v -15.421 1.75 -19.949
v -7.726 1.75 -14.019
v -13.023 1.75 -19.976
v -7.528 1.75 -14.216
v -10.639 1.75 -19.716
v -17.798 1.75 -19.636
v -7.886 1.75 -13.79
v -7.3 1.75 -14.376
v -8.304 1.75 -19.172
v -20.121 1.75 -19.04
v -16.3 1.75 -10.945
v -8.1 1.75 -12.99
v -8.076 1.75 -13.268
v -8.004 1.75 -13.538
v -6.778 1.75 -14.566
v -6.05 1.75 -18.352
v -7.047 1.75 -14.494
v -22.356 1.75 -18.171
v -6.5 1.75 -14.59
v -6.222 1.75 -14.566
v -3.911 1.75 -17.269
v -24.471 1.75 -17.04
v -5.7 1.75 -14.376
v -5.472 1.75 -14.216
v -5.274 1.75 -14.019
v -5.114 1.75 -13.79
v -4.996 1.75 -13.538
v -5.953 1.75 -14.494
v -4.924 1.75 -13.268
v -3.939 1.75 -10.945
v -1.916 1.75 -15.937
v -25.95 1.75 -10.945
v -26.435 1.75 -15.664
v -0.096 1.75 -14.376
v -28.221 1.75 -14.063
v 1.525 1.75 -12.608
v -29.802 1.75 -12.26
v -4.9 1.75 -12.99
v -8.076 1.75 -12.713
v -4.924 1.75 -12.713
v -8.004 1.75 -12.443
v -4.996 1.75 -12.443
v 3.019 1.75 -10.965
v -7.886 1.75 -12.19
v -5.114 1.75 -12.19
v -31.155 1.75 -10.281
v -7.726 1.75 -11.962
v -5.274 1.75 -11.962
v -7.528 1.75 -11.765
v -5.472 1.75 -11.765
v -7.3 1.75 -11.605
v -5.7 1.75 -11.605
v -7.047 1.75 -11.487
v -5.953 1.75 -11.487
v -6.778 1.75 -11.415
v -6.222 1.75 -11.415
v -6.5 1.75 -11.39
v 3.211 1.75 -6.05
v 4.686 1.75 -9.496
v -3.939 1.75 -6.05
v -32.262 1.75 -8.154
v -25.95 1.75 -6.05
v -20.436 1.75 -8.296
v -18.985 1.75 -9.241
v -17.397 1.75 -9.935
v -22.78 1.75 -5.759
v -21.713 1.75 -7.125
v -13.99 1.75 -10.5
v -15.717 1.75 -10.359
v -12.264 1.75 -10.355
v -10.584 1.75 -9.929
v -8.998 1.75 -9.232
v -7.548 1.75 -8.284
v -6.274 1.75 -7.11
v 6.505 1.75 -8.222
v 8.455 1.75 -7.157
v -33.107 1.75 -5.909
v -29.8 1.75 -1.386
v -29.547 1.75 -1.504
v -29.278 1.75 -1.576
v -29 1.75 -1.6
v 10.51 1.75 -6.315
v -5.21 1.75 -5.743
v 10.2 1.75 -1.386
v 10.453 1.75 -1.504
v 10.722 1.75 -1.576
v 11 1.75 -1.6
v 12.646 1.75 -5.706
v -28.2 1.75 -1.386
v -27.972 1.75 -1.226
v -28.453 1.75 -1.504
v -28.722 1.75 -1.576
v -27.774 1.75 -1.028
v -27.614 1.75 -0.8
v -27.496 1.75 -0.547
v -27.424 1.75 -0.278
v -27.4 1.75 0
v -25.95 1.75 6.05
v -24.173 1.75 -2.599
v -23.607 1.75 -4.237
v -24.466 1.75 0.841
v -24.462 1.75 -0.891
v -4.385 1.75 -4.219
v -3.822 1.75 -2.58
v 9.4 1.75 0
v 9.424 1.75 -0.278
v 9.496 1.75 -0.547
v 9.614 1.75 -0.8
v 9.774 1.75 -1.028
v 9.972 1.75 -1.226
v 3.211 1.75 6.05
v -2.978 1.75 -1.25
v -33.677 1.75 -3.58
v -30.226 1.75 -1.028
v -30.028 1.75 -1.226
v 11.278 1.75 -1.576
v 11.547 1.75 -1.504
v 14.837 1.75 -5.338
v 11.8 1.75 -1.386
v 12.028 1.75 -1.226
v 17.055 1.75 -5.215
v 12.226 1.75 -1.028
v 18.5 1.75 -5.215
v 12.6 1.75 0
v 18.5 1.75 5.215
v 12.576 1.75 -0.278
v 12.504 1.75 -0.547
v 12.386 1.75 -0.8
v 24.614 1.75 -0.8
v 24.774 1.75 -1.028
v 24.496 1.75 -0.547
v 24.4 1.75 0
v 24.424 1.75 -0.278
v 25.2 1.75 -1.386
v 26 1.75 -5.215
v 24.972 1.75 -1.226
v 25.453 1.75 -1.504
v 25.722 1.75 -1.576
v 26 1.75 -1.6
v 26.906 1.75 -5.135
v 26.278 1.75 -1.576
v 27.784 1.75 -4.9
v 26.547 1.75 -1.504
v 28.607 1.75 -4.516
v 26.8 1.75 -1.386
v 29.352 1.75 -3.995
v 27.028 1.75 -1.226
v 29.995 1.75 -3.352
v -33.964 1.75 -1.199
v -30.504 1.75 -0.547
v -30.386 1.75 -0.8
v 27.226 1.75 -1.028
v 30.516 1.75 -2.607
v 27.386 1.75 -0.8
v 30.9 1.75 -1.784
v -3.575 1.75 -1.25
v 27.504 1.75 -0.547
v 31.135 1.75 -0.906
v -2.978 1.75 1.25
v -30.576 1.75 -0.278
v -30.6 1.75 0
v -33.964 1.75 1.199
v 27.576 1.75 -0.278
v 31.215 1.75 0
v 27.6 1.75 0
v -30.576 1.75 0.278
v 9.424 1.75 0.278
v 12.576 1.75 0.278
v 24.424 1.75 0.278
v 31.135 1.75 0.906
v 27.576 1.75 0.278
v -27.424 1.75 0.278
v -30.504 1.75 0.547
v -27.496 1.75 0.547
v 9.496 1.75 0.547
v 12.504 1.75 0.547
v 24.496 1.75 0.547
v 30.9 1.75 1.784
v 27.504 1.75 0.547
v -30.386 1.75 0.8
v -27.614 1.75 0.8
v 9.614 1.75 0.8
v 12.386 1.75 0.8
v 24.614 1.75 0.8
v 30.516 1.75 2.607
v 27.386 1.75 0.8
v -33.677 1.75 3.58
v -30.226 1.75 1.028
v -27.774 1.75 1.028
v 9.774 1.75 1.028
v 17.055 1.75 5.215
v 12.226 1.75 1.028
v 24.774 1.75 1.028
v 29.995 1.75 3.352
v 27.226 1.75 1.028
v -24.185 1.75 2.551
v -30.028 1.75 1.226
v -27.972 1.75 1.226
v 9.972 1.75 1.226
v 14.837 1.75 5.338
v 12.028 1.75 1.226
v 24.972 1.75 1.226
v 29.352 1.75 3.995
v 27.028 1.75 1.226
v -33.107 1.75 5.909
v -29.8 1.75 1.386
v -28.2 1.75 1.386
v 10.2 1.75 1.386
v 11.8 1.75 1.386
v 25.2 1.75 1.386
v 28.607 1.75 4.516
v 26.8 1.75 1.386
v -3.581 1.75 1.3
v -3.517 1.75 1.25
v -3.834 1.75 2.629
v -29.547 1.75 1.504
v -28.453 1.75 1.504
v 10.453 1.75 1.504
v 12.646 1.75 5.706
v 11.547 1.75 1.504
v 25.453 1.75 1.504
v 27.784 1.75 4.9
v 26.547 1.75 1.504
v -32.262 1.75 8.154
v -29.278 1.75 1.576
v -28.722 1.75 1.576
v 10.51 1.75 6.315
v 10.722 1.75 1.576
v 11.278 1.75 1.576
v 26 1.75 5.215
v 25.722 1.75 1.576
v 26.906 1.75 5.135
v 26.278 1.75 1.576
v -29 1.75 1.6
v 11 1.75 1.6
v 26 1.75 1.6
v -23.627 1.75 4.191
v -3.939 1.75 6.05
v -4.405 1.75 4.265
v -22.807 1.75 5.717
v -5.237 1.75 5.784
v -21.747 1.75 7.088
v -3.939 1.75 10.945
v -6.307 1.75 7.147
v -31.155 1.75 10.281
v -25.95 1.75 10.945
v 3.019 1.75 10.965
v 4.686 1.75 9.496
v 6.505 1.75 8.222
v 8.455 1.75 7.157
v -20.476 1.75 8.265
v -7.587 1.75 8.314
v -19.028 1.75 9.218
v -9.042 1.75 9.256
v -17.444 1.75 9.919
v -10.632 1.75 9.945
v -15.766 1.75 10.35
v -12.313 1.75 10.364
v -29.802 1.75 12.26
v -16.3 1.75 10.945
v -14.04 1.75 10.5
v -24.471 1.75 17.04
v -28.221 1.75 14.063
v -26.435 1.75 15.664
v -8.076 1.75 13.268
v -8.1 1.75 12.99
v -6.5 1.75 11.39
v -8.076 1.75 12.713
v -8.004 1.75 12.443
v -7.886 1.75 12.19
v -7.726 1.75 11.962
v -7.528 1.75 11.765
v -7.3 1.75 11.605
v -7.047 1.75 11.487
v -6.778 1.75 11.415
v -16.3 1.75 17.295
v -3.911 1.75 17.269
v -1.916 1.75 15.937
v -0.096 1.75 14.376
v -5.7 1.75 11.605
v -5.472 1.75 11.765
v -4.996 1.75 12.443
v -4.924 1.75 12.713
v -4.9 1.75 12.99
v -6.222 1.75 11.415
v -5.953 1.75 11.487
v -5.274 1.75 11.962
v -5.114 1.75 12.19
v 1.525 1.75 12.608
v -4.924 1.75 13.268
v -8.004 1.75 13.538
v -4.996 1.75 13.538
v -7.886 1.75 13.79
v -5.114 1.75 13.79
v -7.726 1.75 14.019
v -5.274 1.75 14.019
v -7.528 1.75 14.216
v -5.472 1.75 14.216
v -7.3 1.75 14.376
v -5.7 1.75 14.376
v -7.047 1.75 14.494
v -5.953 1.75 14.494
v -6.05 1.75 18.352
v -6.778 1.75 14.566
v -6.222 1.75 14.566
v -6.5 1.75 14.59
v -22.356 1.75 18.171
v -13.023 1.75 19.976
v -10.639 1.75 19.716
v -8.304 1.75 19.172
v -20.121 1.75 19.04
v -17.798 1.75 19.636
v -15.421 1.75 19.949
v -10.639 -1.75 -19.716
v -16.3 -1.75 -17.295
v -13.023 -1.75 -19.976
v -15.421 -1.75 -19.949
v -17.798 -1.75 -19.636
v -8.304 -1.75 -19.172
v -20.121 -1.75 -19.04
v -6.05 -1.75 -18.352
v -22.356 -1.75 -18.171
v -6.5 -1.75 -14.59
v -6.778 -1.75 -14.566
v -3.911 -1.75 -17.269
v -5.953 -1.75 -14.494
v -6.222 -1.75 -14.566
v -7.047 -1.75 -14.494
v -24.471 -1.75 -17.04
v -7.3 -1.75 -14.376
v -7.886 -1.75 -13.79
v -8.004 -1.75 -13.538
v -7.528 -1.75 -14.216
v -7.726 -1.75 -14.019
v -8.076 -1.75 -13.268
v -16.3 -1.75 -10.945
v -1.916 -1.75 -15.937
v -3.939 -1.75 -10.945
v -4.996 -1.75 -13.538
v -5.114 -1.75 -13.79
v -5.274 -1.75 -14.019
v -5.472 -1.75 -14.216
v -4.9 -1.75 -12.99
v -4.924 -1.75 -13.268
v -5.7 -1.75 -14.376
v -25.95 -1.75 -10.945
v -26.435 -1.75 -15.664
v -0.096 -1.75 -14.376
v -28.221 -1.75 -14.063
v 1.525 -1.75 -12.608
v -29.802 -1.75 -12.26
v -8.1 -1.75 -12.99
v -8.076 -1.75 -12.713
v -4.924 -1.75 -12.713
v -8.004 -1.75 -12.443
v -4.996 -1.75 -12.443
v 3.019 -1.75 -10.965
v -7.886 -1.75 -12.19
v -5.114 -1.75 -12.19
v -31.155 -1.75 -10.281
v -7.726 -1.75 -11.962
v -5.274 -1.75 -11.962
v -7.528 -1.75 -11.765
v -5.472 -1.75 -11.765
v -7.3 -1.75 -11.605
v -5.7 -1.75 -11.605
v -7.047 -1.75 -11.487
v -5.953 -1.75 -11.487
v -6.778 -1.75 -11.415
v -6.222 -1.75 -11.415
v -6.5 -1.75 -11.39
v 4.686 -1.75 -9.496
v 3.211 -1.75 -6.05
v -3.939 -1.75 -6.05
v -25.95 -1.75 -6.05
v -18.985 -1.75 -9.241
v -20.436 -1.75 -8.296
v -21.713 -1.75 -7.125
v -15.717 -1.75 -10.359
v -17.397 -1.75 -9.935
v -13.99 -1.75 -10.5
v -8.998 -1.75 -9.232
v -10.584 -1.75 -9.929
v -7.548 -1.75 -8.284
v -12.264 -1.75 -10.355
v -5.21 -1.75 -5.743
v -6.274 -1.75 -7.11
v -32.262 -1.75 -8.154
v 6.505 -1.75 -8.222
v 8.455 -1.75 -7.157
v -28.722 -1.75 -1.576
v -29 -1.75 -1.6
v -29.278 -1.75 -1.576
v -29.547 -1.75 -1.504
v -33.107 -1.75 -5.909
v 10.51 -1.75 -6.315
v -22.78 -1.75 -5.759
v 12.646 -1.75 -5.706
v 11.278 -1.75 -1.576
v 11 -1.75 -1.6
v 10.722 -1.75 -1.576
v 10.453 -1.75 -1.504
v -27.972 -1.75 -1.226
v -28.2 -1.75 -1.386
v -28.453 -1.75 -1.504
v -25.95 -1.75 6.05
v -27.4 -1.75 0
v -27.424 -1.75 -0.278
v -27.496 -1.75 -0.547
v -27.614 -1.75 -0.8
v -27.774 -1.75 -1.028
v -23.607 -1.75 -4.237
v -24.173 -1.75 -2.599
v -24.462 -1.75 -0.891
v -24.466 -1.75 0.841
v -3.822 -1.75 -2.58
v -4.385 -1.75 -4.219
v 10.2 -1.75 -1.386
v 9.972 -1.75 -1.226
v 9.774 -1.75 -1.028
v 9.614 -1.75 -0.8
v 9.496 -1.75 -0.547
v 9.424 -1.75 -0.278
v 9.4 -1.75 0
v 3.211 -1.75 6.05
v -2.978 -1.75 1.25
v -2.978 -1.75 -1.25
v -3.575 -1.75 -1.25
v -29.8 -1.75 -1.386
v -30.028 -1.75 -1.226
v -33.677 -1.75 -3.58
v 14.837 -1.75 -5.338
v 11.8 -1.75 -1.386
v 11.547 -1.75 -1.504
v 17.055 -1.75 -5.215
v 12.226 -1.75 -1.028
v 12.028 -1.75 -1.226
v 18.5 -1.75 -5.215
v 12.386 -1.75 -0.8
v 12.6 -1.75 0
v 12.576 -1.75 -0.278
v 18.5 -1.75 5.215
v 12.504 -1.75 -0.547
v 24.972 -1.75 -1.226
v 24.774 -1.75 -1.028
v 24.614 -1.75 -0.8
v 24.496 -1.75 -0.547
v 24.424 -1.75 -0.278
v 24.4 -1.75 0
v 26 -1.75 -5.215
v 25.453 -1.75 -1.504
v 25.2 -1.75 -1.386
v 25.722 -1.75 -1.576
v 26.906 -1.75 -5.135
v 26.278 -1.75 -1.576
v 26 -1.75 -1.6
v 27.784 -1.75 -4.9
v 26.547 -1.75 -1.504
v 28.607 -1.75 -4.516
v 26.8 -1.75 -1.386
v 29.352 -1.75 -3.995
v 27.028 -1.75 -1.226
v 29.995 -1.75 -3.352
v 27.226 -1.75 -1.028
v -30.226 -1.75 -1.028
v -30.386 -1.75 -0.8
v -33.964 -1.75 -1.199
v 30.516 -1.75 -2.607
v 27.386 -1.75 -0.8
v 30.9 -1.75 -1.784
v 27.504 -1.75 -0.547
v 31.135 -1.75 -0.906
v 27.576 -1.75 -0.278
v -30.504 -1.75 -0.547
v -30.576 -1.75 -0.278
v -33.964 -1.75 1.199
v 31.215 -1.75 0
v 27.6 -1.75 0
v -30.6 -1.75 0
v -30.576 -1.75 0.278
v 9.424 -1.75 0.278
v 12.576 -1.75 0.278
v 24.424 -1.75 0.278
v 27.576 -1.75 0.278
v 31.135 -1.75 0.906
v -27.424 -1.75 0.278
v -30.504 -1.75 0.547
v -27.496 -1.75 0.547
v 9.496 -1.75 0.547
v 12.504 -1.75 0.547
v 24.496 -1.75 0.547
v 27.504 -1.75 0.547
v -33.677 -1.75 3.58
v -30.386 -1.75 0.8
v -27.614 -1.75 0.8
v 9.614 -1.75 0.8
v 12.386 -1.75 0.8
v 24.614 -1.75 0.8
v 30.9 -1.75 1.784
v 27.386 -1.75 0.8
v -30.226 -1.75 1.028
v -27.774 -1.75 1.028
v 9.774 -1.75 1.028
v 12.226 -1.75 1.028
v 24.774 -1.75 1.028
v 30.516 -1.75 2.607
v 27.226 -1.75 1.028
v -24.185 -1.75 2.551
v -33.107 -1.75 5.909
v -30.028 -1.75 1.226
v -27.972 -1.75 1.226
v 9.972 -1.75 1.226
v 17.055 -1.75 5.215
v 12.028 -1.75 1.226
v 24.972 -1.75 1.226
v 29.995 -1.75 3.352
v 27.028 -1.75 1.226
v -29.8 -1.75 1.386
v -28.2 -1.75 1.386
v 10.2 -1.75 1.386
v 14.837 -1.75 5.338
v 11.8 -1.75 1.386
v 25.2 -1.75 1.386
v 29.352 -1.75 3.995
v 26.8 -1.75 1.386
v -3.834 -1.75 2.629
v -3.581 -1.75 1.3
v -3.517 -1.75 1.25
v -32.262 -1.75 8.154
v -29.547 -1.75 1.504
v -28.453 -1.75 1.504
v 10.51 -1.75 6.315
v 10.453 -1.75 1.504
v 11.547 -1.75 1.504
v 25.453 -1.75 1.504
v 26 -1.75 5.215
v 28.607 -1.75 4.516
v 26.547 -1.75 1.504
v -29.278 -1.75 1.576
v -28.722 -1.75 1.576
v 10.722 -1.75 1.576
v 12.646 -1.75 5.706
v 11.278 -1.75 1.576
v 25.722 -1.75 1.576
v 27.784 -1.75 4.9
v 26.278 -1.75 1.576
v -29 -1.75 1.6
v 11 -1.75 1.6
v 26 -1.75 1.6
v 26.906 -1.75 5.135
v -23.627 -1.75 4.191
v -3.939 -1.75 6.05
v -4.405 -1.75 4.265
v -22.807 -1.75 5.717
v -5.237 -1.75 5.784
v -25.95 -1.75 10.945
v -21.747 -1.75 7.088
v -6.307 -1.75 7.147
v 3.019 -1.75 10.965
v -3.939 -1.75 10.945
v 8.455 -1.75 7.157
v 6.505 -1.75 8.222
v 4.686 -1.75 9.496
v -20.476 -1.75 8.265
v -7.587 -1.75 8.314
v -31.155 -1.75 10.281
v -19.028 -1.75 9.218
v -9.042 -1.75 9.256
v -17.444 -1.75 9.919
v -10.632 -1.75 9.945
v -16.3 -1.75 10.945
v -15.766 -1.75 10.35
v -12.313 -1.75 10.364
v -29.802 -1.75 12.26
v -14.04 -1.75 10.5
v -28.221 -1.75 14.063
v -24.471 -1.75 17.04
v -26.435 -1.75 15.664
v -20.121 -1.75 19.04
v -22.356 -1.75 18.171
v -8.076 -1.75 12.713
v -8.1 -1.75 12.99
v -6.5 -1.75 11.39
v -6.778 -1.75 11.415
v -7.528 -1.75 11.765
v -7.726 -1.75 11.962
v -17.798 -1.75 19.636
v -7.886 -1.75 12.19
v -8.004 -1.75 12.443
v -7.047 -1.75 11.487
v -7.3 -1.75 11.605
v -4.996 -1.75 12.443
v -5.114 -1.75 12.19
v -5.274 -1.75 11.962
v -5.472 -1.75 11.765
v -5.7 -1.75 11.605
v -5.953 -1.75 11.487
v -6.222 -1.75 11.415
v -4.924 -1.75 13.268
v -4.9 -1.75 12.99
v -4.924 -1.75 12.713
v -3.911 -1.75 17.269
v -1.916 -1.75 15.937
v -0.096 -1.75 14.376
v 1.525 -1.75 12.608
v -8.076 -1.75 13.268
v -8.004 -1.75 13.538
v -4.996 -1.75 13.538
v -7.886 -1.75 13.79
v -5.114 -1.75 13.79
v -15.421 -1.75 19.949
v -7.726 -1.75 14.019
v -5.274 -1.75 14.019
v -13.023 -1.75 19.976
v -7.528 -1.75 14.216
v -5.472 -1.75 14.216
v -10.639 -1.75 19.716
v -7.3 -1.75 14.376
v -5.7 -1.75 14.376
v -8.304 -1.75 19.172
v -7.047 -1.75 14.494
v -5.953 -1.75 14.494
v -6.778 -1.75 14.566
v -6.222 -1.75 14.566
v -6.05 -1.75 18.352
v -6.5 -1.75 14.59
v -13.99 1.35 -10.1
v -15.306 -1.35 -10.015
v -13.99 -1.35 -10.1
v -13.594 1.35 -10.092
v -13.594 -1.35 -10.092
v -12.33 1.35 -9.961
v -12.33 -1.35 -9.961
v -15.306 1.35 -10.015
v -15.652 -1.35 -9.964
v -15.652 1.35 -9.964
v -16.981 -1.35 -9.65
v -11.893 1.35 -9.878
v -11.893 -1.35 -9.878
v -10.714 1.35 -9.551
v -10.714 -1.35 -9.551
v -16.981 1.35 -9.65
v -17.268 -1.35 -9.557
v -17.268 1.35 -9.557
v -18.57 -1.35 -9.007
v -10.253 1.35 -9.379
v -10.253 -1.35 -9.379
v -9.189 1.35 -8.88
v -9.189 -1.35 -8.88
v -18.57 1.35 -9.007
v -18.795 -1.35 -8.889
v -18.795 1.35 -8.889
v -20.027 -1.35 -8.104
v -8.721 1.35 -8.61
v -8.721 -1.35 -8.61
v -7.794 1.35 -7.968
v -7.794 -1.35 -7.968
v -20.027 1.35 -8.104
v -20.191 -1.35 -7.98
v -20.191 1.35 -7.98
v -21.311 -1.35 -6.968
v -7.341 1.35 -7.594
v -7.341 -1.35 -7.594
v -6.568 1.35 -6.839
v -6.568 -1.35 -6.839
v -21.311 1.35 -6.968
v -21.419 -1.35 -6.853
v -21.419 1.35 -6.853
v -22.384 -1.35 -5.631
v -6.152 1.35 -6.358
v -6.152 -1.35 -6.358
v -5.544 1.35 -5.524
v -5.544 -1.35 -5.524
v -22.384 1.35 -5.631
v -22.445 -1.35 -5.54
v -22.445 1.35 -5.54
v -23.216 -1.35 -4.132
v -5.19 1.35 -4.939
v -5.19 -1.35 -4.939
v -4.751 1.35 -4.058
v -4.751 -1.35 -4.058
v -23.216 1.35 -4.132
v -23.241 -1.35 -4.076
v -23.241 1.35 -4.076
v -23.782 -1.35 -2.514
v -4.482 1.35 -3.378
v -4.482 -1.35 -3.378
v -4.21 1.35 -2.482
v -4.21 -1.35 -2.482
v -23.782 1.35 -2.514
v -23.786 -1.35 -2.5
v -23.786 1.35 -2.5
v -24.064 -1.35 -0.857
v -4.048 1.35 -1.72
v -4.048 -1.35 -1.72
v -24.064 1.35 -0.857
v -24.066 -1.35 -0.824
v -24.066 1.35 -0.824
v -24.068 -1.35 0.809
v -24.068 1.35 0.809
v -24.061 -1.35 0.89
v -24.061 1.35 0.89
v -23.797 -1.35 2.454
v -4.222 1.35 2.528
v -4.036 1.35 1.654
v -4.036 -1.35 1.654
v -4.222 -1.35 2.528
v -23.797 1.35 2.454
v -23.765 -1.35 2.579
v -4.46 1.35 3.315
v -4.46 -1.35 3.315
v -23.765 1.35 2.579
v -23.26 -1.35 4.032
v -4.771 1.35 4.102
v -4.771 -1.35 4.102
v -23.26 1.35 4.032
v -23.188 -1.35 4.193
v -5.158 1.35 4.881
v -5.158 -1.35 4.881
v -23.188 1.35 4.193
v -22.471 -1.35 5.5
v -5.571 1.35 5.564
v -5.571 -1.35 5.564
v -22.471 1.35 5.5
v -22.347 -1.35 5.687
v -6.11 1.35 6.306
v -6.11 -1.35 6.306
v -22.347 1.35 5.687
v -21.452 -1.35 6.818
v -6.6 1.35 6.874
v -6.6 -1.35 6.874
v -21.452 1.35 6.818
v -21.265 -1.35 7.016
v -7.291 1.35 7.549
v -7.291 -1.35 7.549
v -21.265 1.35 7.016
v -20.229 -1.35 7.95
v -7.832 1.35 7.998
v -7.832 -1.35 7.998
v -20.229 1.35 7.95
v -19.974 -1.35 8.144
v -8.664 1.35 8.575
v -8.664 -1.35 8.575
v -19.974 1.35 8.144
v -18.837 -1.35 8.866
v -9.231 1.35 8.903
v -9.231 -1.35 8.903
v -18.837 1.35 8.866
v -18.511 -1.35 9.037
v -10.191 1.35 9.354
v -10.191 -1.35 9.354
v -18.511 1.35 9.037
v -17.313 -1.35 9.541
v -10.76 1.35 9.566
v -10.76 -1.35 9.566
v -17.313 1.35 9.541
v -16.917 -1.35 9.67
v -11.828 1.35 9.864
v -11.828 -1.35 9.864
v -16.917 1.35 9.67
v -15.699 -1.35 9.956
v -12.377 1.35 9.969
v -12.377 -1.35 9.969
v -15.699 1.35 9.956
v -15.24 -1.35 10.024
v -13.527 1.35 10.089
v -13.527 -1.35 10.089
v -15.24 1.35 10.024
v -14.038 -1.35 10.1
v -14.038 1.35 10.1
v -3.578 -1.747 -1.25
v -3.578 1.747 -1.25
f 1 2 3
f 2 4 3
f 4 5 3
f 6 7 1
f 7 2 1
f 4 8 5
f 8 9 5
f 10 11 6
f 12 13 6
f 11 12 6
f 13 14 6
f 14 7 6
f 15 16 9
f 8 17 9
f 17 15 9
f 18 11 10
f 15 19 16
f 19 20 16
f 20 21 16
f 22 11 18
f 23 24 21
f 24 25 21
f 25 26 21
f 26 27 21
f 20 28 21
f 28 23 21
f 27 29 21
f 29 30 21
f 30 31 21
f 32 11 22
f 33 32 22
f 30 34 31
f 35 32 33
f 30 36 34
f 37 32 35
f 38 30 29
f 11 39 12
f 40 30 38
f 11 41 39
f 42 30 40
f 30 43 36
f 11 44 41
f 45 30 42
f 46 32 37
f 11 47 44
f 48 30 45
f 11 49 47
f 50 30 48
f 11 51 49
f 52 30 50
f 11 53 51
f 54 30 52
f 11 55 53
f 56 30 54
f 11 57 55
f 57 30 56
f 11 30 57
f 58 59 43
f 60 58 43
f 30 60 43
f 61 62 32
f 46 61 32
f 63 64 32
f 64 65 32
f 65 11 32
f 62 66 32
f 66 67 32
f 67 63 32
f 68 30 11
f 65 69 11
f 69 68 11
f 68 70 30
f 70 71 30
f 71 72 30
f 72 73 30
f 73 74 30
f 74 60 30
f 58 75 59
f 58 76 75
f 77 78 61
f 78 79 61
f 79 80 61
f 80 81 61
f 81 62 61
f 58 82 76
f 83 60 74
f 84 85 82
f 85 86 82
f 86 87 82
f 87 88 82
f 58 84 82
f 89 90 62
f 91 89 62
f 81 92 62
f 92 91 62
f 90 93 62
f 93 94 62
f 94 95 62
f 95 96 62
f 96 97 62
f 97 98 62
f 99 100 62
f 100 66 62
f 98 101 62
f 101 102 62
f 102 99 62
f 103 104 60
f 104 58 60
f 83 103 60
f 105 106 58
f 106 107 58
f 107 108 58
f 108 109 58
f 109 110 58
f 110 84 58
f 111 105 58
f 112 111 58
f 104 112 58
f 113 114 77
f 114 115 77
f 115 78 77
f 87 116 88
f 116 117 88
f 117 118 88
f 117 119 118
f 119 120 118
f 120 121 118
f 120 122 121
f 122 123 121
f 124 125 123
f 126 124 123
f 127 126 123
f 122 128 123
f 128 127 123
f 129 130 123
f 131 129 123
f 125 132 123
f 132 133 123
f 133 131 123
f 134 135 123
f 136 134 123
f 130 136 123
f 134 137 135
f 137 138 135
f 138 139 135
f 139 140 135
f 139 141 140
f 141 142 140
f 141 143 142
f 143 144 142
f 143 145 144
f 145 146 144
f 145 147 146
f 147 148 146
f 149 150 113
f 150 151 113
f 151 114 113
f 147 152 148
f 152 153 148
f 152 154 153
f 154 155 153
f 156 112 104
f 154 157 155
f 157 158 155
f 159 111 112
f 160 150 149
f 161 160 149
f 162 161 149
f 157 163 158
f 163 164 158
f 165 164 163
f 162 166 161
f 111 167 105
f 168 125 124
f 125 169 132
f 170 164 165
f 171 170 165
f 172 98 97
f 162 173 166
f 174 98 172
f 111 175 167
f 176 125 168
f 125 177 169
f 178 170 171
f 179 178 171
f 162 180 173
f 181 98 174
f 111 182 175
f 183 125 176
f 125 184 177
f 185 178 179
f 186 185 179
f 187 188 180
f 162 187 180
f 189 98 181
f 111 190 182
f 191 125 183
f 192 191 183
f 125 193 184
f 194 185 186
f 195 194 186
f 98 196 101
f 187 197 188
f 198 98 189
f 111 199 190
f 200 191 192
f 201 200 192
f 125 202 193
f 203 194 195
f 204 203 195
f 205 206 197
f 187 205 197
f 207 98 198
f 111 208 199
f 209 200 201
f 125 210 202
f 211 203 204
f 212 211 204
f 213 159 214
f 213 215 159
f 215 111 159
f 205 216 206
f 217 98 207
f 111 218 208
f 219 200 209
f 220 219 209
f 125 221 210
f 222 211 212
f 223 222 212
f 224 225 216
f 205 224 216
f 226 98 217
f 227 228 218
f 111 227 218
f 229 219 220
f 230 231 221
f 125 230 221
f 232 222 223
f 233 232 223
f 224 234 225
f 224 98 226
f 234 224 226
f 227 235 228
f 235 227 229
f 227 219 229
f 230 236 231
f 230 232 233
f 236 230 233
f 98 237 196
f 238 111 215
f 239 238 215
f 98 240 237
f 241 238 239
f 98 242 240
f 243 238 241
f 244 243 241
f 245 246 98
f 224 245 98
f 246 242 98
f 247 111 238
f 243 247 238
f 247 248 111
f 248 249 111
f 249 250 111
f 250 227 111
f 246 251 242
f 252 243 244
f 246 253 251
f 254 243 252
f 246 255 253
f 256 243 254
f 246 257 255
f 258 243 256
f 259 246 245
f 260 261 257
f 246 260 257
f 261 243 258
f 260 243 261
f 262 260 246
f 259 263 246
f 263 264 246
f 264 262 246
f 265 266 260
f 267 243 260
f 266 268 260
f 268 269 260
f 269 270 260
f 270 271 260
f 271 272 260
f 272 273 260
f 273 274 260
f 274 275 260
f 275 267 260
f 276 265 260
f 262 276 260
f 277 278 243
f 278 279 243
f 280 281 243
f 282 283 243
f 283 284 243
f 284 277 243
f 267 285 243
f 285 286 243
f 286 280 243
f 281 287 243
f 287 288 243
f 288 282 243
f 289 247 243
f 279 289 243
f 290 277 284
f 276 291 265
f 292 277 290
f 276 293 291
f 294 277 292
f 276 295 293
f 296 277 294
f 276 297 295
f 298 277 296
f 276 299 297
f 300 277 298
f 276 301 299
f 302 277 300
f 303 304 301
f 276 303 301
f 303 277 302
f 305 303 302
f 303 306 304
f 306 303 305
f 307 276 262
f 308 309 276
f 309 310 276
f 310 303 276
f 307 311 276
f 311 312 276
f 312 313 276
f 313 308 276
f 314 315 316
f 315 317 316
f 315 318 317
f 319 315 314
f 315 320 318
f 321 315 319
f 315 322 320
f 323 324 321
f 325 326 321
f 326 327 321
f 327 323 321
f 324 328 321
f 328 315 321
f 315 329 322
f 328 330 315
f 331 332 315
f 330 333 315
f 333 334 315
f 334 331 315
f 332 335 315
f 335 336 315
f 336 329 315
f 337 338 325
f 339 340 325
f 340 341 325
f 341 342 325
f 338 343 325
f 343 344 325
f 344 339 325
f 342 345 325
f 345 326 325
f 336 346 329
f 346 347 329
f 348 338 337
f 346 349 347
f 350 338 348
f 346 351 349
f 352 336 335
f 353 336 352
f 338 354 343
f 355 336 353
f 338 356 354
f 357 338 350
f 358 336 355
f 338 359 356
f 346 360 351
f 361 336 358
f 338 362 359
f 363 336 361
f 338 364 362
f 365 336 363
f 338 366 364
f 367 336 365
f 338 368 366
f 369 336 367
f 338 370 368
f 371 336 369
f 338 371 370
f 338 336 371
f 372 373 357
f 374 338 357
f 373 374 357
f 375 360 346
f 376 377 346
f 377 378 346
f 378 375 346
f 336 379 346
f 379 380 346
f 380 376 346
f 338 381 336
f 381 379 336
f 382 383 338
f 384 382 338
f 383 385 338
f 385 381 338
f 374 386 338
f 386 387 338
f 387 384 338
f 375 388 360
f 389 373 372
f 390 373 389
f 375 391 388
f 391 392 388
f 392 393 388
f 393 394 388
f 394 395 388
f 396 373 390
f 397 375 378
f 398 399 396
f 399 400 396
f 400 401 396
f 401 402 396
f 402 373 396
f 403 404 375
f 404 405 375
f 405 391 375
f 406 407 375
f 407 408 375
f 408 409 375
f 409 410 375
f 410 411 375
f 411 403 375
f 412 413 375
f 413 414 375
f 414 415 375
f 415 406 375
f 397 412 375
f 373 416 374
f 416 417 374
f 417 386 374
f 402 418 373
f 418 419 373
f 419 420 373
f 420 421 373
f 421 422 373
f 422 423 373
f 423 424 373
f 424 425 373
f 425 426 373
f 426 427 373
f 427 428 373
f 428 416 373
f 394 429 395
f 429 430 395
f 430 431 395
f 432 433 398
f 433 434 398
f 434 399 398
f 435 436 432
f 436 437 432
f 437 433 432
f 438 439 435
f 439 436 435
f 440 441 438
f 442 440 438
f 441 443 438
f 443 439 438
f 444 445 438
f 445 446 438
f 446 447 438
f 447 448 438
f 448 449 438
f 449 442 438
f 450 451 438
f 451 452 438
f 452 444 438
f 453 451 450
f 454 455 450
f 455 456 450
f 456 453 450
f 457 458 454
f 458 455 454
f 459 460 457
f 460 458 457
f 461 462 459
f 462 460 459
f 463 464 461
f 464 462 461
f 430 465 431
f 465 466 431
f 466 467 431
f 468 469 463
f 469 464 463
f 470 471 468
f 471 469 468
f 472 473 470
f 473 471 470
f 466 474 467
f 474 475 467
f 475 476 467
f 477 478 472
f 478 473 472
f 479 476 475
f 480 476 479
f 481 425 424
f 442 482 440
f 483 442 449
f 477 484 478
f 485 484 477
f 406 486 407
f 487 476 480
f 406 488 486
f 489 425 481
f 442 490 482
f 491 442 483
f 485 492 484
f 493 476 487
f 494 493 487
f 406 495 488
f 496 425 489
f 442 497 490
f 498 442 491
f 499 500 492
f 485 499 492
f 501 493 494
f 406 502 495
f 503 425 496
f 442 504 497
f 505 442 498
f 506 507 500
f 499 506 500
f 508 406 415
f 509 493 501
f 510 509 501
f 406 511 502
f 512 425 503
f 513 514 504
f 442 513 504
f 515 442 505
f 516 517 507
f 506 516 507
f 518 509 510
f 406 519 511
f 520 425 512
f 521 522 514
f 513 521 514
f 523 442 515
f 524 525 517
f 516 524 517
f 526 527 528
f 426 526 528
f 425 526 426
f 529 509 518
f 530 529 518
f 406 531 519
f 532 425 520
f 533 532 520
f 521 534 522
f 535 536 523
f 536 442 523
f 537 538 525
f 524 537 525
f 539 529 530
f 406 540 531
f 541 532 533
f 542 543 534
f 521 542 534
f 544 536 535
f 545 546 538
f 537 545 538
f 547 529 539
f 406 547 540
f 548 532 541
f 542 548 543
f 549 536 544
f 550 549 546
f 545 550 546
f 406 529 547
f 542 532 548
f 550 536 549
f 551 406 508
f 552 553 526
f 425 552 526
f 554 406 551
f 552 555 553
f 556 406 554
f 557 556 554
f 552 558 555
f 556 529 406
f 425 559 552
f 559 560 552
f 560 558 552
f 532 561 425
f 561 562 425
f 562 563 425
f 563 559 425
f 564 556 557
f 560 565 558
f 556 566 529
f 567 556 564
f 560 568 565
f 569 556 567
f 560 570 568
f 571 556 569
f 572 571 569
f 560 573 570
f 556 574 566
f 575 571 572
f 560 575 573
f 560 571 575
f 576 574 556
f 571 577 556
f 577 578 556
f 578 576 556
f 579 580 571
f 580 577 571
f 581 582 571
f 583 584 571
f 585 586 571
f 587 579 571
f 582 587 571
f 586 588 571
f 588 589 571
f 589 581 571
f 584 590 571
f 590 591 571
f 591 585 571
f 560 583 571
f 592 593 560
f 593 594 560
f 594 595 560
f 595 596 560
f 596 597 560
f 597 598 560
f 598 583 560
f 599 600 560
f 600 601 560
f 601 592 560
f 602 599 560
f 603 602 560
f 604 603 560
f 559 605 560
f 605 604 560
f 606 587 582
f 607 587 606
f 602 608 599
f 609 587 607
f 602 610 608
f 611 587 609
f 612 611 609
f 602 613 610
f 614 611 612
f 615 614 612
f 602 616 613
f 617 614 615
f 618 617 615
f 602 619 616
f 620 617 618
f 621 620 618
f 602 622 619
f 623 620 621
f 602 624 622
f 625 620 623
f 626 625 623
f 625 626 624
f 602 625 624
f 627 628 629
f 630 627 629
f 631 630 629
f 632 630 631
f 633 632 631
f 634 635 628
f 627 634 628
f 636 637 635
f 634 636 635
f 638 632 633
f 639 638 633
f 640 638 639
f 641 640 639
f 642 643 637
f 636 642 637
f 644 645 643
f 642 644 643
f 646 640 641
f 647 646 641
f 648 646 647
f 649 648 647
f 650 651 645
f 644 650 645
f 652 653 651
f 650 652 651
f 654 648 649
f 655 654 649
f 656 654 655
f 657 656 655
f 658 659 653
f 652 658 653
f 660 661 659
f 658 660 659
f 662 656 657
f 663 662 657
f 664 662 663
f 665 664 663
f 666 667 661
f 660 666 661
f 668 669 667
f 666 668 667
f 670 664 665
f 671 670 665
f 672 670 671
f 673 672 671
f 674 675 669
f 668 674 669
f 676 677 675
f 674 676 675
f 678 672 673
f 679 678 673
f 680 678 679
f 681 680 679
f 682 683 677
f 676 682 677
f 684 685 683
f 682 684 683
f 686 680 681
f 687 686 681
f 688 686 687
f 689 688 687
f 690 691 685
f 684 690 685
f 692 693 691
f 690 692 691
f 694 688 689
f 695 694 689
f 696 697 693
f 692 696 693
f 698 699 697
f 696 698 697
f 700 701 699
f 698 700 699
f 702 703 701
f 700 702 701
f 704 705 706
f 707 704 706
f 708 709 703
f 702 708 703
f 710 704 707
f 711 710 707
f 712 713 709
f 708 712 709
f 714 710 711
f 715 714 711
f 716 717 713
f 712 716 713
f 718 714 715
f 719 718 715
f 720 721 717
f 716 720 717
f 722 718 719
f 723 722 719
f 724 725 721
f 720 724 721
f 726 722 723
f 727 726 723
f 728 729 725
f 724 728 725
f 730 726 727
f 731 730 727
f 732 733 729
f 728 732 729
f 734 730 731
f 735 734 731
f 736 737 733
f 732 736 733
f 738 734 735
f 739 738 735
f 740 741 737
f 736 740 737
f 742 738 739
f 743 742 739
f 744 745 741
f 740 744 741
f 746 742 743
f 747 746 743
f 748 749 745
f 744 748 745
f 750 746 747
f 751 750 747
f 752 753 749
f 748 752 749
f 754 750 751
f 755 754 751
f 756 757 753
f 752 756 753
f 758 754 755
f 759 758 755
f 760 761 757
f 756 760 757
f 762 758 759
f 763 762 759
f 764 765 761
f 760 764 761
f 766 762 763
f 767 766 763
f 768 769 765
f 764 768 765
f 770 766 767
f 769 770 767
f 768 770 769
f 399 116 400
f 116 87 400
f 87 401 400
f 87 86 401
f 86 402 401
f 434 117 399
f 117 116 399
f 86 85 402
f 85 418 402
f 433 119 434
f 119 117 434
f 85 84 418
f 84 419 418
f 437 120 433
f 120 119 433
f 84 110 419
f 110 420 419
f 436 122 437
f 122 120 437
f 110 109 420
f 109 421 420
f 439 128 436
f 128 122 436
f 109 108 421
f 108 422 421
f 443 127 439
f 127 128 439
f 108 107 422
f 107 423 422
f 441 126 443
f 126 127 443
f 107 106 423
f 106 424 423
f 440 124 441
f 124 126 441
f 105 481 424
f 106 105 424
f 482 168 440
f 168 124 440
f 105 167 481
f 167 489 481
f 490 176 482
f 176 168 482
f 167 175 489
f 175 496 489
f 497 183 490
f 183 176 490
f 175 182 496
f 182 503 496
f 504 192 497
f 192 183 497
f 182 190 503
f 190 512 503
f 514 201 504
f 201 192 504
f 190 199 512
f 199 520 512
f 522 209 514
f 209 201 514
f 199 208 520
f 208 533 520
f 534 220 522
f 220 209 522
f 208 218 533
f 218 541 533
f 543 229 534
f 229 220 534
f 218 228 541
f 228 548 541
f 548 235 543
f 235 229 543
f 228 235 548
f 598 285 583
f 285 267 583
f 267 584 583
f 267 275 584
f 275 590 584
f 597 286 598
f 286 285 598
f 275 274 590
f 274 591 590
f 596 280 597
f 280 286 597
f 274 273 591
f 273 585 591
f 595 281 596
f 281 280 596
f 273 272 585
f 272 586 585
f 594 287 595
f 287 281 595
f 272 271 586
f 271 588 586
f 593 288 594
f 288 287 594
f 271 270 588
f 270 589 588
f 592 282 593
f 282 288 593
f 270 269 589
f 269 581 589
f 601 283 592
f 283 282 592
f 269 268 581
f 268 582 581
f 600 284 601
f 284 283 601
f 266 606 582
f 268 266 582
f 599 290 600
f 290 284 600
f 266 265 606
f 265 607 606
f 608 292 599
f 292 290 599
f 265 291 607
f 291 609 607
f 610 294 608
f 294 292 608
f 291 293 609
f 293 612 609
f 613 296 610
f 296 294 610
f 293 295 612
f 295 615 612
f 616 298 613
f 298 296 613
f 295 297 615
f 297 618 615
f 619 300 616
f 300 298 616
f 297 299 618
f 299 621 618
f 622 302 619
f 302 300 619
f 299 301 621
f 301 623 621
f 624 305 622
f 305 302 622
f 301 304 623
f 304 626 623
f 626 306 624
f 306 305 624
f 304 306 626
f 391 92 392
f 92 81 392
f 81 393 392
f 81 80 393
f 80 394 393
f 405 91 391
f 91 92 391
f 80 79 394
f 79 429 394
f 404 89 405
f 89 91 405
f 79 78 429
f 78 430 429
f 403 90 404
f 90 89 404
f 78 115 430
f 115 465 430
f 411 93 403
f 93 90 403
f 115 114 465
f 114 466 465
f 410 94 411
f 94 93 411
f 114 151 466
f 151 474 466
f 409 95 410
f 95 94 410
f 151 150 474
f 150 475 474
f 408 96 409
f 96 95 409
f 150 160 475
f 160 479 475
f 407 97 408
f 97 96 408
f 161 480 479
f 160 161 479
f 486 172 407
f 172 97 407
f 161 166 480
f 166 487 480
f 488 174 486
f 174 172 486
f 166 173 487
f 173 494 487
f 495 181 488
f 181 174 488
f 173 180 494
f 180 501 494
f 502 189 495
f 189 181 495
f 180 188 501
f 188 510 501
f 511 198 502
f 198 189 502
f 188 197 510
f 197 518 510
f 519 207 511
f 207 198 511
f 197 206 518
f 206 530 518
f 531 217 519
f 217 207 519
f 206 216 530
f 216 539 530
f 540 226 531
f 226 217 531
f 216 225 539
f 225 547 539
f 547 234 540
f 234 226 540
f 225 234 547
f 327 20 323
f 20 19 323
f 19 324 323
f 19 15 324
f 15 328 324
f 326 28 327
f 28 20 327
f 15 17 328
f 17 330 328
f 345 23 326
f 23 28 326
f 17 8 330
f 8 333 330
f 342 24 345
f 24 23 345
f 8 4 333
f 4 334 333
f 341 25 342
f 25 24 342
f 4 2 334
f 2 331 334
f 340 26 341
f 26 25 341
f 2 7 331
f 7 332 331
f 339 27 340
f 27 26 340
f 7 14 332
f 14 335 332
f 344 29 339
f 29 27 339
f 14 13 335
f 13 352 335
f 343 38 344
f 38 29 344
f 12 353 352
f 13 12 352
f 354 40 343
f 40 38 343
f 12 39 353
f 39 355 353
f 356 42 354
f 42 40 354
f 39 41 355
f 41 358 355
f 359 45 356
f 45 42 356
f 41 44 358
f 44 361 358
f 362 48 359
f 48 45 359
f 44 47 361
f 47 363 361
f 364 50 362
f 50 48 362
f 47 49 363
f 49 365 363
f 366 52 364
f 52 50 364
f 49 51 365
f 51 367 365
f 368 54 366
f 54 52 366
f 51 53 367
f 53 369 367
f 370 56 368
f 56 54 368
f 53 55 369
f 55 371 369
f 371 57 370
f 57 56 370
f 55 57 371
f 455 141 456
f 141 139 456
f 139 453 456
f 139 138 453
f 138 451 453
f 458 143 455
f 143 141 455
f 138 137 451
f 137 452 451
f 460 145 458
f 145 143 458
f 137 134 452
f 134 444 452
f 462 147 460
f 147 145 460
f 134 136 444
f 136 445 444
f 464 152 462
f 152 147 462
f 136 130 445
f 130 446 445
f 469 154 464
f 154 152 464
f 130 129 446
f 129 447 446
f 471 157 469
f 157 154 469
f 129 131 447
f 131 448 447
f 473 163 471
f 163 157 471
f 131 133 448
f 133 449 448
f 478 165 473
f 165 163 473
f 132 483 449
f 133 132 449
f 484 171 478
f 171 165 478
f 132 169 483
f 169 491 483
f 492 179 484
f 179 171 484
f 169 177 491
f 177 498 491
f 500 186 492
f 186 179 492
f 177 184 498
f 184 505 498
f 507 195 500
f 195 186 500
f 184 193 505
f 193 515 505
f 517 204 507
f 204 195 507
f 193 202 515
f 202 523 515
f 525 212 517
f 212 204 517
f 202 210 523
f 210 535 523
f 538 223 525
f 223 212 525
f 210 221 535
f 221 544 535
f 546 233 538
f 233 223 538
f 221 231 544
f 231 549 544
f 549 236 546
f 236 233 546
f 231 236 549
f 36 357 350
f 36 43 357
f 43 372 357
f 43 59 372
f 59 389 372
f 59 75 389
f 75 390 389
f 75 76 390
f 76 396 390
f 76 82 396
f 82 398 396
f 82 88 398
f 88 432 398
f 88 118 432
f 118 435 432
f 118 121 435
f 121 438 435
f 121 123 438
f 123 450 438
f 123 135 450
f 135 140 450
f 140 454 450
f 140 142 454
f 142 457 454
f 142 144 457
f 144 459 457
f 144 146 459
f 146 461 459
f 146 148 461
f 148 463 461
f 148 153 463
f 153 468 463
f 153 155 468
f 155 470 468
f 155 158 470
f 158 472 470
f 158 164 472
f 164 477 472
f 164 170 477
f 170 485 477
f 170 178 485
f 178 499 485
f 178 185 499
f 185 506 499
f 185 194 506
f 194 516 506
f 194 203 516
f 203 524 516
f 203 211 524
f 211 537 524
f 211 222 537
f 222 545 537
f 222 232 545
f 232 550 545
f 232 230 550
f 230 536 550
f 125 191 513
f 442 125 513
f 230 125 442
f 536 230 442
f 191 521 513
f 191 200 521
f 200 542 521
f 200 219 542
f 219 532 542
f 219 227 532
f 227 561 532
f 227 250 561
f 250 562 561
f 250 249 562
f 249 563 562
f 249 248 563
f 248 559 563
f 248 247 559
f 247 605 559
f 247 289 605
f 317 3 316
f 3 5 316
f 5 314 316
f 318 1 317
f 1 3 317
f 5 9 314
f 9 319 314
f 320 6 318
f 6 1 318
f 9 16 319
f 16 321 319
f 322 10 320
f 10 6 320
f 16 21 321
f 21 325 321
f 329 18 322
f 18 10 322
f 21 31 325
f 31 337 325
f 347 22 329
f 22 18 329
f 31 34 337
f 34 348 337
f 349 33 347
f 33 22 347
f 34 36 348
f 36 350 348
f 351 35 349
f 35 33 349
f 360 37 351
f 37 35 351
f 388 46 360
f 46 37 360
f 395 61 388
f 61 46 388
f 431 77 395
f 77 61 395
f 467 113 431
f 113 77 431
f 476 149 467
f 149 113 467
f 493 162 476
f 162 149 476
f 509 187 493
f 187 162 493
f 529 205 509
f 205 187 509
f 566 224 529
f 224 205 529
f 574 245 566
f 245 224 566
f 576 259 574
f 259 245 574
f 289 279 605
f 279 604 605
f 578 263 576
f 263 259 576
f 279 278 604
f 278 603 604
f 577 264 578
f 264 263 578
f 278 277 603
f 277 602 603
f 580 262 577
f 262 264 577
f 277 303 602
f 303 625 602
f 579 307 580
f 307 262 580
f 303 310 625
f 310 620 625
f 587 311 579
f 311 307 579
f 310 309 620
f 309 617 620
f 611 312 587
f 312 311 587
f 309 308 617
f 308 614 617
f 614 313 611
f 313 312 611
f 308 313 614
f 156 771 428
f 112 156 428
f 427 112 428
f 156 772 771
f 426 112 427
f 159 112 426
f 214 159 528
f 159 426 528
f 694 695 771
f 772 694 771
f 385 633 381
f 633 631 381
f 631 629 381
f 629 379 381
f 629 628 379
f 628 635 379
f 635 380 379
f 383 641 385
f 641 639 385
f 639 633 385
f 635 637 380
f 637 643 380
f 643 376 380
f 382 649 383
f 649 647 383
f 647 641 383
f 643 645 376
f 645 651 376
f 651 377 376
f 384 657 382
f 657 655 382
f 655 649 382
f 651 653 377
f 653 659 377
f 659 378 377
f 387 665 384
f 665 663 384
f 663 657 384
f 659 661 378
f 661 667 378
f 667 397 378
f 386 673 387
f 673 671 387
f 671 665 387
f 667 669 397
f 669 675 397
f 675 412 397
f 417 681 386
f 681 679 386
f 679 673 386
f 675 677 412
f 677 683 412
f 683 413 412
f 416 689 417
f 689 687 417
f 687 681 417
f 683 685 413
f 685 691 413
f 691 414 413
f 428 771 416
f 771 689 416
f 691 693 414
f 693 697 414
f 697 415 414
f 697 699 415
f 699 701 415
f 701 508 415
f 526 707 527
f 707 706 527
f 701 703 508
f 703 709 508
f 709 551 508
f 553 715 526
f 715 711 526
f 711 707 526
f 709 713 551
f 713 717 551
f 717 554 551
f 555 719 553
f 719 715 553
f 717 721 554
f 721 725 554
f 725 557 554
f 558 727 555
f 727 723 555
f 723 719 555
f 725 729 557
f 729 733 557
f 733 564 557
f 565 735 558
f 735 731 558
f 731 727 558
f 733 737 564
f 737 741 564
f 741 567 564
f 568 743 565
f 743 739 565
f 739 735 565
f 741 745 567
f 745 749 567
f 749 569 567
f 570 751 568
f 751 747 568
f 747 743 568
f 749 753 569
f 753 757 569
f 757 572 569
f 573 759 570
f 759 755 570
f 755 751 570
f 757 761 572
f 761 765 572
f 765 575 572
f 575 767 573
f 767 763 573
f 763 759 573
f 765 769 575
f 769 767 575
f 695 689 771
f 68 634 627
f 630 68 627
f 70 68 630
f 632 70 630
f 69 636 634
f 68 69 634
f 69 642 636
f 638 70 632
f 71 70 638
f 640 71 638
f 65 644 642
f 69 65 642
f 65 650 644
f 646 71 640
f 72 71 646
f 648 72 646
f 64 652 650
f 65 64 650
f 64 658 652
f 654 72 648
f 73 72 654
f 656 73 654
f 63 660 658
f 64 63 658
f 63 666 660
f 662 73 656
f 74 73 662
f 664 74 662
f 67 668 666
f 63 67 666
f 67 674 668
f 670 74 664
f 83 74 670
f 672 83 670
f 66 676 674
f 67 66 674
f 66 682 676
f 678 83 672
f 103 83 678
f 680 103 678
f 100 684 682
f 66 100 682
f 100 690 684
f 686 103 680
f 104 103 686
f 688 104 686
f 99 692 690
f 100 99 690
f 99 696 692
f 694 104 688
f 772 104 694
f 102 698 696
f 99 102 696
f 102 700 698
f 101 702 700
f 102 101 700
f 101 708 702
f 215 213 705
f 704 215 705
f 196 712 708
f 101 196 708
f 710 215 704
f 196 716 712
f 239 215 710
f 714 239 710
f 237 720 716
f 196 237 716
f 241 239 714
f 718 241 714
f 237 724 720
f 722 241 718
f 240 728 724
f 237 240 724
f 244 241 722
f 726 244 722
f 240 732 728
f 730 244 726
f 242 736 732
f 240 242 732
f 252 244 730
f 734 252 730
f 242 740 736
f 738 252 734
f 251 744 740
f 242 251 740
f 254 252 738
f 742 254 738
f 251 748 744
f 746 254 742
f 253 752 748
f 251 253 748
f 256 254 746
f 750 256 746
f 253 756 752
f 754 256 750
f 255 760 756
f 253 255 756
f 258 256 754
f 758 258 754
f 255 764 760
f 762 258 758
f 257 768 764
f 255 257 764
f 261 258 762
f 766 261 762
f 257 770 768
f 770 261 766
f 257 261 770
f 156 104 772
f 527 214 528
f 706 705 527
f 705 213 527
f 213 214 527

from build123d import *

# Parameters (mm, degrees)
SKETCH1_W           = 70
SKETCH1_H           = 3.5
BOSS_EXTRUDE1_DEPTH = 25
SKETCH2_R           = 10.1
SKETCH2_R_2         = 1.6
CUT_EXTRUDE1_DEPTH  = 44.153794735
SKETCH4_OUTSIDE_W   = 89.218
SKETCH4_OUTSIDE_H   = 69.218
CUT_EXTRUDE2_DEPTH  = 44.153794735
SKETCH5_W           = 1
SKETCH5_H           = 2.5
CUT_EXTRUDE3_DEPTH  = 40.601136347
CHAMFER1_SIZE       = 0.460537939
CHAMFER1_SIZE_2     = 0.4


with BuildPart() as part:
    # Sketch1 → Boss-Extrude1 (new, symmetric)
    with BuildSketch(Plane.XY):
        Rectangle(SKETCH1_W, SKETCH1_H)
    extrude(amount=BOSS_EXTRUDE1_DEPTH, both=True)

    # Sketch2 → Cut-Extrude1 (cut, through all)
    with BuildSketch(Plane(origin=(0, 1.75, 0), x_dir=(1, 0, 0), z_dir=(0, 1, 0))):
        with Locations(Location((-14, 0, 0), (0, 0, 180))):
            Circle(SKETCH2_R)
        with Locations((-29, 0)):
            Circle(SKETCH2_R_2)
        with Locations(Location((-6.5, 12.990381057, 0), (0, 0, 180))):
            Circle(SKETCH2_R_2)
        with Locations(Location((-6.5, -12.990381057, 0), (0, 0, 180))):
            Circle(SKETCH2_R_2)
        with Locations(Location((11, 0, 0), (0, 0, 180))):
            Circle(SKETCH2_R_2)
        with Locations(Location((26, 0, 0), (0, 0, 180))):
            Circle(SKETCH2_R_2)
    extrude(amount=-CUT_EXTRUDE1_DEPTH, mode=Mode.SUBTRACT)

    # Sketch4 outside → Cut-Extrude2 (cut, through all)
    with BuildSketch(Plane(origin=(0, 1.75, 0), x_dir=(1, 0, 0), z_dir=(0, 1, 0))):
        Rectangle(SKETCH4_OUTSIDE_W, SKETCH4_OUTSIDE_H)
        with BuildLine():
            Line((17.054712149, -5.214702174), (26, -5.214702174))
            ThreePointArc((26, -5.214702174), (31.214702174, 0), (26, 5.214702174))
            Line((26, 5.214702174), (17.054712149, 5.214702174))
            ThreePointArc((17.054712149, 5.214702174), (8.454737914, 7.157470503), (1.525041378, 12.608453125))
            ThreePointArc((1.525041378, 12.608453125), (-34, 0), (1.525041378, -12.608453125))
            ThreePointArc((1.525041378, -12.608453125), (8.454737914, -7.157470503), (17.054712149, -5.214702174))
        make_face(mode=Mode.SUBTRACT)
    extrude(amount=-CUT_EXTRUDE2_DEPTH, mode=Mode.SUBTRACT)

    # Sketch5 → Cut-Extrude3 (cut, through all)
    with BuildSketch(Plane(origin=(0, 1.75, 0), x_dir=(1, 0, 0), z_dir=(0, 1, 0))):
        with Locations((-3.477649976, 0)):
            Rectangle(SKETCH5_W, SKETCH5_H)
    extrude(amount=-CUT_EXTRUDE3_DEPTH, mode=Mode.SUBTRACT)

    # Chamfer1
    # the kernel refuses this chamfer: 0.460537939, 0.4 mm, written as the material it takes off along each edge
    with BuildSketch(Plane(origin=(-3.977649976, 2.93802649, 1.25), x_dir=(1, 0, 0), z_dir=(0, -1, 0))) as chamfer1_piece_1:
        with BuildLine():
            Line((CHAMFER1_SIZE, 0), (-0.058717526, 0.404094149))
            ThreePointArc((-0.058717526, 0.404094149), (-0.028274639, 0.208923305), (0, 0))
            Line((0, 0), (CHAMFER1_SIZE, 0))
        make_face()
    extrude(amount=5.876052981, mode=Mode.SUBTRACT)
    with BuildSketch(Plane(origin=(-3.977649976, 2.974865586, -1.25), x_dir=(-0.1470633692519934, 0, -0.9891270724352114), z_dir=(0, -1, 0))) as chamfer1_piece_2:
        with BuildLine():
            Line((0.475023444, 0), (-CHAMFER1_SIZE_2 * 0.147063369252, CHAMFER1_SIZE_2 * 0.989127072435))
            Line((-CHAMFER1_SIZE_2 * 0.147063369252, CHAMFER1_SIZE_2 * 0.989127072435), (0, 0))
            ThreePointArc((0, 0), (0.244917786, 0.002790335), (0.475023444, 0))
        make_face()
    extrude(amount=5.949731171, mode=Mode.SUBTRACT)
    # the kernel refuses this chamfer: 0.460537939, 0.4 mm, written as the material it takes off along each edge
    with BuildSketch(Plane(origin=(-14, -1.75, 0), x_dir=(0.9980739544649045, 0, 0.062035323959722194), z_dir=(0.062035323959722194, 0, -0.9980739544649045))) as chamfer1_2_piece_1:
        Polygon((10.1 + CHAMFER1_SIZE_2, 0), (10.1, -CHAMFER1_SIZE_2), (10.1, 0), align=None)
    revolve(axis=Axis((-14, -1.75, 0), (0, -1, 0)), revolution_arc=352.508320322, mode=Mode.SUBTRACT)
    with BuildSketch(Plane(origin=(-14, 1.75, 0), x_dir=(0.9980739544649045, 0, 0.06203532395972309), z_dir=(0.06203532395972309, 0, -0.9980739544649045))) as chamfer1_2_piece_2:
        Polygon((10.1 + CHAMFER1_SIZE_2, 0), (10.1, CHAMFER1_SIZE_2), (10.1, 0), align=None)
    revolve(axis=Axis((-14, 1.75, 0), (0, -1, 0)), revolution_arc=352.508320322, mode=Mode.SUBTRACT)


solid = part.part
